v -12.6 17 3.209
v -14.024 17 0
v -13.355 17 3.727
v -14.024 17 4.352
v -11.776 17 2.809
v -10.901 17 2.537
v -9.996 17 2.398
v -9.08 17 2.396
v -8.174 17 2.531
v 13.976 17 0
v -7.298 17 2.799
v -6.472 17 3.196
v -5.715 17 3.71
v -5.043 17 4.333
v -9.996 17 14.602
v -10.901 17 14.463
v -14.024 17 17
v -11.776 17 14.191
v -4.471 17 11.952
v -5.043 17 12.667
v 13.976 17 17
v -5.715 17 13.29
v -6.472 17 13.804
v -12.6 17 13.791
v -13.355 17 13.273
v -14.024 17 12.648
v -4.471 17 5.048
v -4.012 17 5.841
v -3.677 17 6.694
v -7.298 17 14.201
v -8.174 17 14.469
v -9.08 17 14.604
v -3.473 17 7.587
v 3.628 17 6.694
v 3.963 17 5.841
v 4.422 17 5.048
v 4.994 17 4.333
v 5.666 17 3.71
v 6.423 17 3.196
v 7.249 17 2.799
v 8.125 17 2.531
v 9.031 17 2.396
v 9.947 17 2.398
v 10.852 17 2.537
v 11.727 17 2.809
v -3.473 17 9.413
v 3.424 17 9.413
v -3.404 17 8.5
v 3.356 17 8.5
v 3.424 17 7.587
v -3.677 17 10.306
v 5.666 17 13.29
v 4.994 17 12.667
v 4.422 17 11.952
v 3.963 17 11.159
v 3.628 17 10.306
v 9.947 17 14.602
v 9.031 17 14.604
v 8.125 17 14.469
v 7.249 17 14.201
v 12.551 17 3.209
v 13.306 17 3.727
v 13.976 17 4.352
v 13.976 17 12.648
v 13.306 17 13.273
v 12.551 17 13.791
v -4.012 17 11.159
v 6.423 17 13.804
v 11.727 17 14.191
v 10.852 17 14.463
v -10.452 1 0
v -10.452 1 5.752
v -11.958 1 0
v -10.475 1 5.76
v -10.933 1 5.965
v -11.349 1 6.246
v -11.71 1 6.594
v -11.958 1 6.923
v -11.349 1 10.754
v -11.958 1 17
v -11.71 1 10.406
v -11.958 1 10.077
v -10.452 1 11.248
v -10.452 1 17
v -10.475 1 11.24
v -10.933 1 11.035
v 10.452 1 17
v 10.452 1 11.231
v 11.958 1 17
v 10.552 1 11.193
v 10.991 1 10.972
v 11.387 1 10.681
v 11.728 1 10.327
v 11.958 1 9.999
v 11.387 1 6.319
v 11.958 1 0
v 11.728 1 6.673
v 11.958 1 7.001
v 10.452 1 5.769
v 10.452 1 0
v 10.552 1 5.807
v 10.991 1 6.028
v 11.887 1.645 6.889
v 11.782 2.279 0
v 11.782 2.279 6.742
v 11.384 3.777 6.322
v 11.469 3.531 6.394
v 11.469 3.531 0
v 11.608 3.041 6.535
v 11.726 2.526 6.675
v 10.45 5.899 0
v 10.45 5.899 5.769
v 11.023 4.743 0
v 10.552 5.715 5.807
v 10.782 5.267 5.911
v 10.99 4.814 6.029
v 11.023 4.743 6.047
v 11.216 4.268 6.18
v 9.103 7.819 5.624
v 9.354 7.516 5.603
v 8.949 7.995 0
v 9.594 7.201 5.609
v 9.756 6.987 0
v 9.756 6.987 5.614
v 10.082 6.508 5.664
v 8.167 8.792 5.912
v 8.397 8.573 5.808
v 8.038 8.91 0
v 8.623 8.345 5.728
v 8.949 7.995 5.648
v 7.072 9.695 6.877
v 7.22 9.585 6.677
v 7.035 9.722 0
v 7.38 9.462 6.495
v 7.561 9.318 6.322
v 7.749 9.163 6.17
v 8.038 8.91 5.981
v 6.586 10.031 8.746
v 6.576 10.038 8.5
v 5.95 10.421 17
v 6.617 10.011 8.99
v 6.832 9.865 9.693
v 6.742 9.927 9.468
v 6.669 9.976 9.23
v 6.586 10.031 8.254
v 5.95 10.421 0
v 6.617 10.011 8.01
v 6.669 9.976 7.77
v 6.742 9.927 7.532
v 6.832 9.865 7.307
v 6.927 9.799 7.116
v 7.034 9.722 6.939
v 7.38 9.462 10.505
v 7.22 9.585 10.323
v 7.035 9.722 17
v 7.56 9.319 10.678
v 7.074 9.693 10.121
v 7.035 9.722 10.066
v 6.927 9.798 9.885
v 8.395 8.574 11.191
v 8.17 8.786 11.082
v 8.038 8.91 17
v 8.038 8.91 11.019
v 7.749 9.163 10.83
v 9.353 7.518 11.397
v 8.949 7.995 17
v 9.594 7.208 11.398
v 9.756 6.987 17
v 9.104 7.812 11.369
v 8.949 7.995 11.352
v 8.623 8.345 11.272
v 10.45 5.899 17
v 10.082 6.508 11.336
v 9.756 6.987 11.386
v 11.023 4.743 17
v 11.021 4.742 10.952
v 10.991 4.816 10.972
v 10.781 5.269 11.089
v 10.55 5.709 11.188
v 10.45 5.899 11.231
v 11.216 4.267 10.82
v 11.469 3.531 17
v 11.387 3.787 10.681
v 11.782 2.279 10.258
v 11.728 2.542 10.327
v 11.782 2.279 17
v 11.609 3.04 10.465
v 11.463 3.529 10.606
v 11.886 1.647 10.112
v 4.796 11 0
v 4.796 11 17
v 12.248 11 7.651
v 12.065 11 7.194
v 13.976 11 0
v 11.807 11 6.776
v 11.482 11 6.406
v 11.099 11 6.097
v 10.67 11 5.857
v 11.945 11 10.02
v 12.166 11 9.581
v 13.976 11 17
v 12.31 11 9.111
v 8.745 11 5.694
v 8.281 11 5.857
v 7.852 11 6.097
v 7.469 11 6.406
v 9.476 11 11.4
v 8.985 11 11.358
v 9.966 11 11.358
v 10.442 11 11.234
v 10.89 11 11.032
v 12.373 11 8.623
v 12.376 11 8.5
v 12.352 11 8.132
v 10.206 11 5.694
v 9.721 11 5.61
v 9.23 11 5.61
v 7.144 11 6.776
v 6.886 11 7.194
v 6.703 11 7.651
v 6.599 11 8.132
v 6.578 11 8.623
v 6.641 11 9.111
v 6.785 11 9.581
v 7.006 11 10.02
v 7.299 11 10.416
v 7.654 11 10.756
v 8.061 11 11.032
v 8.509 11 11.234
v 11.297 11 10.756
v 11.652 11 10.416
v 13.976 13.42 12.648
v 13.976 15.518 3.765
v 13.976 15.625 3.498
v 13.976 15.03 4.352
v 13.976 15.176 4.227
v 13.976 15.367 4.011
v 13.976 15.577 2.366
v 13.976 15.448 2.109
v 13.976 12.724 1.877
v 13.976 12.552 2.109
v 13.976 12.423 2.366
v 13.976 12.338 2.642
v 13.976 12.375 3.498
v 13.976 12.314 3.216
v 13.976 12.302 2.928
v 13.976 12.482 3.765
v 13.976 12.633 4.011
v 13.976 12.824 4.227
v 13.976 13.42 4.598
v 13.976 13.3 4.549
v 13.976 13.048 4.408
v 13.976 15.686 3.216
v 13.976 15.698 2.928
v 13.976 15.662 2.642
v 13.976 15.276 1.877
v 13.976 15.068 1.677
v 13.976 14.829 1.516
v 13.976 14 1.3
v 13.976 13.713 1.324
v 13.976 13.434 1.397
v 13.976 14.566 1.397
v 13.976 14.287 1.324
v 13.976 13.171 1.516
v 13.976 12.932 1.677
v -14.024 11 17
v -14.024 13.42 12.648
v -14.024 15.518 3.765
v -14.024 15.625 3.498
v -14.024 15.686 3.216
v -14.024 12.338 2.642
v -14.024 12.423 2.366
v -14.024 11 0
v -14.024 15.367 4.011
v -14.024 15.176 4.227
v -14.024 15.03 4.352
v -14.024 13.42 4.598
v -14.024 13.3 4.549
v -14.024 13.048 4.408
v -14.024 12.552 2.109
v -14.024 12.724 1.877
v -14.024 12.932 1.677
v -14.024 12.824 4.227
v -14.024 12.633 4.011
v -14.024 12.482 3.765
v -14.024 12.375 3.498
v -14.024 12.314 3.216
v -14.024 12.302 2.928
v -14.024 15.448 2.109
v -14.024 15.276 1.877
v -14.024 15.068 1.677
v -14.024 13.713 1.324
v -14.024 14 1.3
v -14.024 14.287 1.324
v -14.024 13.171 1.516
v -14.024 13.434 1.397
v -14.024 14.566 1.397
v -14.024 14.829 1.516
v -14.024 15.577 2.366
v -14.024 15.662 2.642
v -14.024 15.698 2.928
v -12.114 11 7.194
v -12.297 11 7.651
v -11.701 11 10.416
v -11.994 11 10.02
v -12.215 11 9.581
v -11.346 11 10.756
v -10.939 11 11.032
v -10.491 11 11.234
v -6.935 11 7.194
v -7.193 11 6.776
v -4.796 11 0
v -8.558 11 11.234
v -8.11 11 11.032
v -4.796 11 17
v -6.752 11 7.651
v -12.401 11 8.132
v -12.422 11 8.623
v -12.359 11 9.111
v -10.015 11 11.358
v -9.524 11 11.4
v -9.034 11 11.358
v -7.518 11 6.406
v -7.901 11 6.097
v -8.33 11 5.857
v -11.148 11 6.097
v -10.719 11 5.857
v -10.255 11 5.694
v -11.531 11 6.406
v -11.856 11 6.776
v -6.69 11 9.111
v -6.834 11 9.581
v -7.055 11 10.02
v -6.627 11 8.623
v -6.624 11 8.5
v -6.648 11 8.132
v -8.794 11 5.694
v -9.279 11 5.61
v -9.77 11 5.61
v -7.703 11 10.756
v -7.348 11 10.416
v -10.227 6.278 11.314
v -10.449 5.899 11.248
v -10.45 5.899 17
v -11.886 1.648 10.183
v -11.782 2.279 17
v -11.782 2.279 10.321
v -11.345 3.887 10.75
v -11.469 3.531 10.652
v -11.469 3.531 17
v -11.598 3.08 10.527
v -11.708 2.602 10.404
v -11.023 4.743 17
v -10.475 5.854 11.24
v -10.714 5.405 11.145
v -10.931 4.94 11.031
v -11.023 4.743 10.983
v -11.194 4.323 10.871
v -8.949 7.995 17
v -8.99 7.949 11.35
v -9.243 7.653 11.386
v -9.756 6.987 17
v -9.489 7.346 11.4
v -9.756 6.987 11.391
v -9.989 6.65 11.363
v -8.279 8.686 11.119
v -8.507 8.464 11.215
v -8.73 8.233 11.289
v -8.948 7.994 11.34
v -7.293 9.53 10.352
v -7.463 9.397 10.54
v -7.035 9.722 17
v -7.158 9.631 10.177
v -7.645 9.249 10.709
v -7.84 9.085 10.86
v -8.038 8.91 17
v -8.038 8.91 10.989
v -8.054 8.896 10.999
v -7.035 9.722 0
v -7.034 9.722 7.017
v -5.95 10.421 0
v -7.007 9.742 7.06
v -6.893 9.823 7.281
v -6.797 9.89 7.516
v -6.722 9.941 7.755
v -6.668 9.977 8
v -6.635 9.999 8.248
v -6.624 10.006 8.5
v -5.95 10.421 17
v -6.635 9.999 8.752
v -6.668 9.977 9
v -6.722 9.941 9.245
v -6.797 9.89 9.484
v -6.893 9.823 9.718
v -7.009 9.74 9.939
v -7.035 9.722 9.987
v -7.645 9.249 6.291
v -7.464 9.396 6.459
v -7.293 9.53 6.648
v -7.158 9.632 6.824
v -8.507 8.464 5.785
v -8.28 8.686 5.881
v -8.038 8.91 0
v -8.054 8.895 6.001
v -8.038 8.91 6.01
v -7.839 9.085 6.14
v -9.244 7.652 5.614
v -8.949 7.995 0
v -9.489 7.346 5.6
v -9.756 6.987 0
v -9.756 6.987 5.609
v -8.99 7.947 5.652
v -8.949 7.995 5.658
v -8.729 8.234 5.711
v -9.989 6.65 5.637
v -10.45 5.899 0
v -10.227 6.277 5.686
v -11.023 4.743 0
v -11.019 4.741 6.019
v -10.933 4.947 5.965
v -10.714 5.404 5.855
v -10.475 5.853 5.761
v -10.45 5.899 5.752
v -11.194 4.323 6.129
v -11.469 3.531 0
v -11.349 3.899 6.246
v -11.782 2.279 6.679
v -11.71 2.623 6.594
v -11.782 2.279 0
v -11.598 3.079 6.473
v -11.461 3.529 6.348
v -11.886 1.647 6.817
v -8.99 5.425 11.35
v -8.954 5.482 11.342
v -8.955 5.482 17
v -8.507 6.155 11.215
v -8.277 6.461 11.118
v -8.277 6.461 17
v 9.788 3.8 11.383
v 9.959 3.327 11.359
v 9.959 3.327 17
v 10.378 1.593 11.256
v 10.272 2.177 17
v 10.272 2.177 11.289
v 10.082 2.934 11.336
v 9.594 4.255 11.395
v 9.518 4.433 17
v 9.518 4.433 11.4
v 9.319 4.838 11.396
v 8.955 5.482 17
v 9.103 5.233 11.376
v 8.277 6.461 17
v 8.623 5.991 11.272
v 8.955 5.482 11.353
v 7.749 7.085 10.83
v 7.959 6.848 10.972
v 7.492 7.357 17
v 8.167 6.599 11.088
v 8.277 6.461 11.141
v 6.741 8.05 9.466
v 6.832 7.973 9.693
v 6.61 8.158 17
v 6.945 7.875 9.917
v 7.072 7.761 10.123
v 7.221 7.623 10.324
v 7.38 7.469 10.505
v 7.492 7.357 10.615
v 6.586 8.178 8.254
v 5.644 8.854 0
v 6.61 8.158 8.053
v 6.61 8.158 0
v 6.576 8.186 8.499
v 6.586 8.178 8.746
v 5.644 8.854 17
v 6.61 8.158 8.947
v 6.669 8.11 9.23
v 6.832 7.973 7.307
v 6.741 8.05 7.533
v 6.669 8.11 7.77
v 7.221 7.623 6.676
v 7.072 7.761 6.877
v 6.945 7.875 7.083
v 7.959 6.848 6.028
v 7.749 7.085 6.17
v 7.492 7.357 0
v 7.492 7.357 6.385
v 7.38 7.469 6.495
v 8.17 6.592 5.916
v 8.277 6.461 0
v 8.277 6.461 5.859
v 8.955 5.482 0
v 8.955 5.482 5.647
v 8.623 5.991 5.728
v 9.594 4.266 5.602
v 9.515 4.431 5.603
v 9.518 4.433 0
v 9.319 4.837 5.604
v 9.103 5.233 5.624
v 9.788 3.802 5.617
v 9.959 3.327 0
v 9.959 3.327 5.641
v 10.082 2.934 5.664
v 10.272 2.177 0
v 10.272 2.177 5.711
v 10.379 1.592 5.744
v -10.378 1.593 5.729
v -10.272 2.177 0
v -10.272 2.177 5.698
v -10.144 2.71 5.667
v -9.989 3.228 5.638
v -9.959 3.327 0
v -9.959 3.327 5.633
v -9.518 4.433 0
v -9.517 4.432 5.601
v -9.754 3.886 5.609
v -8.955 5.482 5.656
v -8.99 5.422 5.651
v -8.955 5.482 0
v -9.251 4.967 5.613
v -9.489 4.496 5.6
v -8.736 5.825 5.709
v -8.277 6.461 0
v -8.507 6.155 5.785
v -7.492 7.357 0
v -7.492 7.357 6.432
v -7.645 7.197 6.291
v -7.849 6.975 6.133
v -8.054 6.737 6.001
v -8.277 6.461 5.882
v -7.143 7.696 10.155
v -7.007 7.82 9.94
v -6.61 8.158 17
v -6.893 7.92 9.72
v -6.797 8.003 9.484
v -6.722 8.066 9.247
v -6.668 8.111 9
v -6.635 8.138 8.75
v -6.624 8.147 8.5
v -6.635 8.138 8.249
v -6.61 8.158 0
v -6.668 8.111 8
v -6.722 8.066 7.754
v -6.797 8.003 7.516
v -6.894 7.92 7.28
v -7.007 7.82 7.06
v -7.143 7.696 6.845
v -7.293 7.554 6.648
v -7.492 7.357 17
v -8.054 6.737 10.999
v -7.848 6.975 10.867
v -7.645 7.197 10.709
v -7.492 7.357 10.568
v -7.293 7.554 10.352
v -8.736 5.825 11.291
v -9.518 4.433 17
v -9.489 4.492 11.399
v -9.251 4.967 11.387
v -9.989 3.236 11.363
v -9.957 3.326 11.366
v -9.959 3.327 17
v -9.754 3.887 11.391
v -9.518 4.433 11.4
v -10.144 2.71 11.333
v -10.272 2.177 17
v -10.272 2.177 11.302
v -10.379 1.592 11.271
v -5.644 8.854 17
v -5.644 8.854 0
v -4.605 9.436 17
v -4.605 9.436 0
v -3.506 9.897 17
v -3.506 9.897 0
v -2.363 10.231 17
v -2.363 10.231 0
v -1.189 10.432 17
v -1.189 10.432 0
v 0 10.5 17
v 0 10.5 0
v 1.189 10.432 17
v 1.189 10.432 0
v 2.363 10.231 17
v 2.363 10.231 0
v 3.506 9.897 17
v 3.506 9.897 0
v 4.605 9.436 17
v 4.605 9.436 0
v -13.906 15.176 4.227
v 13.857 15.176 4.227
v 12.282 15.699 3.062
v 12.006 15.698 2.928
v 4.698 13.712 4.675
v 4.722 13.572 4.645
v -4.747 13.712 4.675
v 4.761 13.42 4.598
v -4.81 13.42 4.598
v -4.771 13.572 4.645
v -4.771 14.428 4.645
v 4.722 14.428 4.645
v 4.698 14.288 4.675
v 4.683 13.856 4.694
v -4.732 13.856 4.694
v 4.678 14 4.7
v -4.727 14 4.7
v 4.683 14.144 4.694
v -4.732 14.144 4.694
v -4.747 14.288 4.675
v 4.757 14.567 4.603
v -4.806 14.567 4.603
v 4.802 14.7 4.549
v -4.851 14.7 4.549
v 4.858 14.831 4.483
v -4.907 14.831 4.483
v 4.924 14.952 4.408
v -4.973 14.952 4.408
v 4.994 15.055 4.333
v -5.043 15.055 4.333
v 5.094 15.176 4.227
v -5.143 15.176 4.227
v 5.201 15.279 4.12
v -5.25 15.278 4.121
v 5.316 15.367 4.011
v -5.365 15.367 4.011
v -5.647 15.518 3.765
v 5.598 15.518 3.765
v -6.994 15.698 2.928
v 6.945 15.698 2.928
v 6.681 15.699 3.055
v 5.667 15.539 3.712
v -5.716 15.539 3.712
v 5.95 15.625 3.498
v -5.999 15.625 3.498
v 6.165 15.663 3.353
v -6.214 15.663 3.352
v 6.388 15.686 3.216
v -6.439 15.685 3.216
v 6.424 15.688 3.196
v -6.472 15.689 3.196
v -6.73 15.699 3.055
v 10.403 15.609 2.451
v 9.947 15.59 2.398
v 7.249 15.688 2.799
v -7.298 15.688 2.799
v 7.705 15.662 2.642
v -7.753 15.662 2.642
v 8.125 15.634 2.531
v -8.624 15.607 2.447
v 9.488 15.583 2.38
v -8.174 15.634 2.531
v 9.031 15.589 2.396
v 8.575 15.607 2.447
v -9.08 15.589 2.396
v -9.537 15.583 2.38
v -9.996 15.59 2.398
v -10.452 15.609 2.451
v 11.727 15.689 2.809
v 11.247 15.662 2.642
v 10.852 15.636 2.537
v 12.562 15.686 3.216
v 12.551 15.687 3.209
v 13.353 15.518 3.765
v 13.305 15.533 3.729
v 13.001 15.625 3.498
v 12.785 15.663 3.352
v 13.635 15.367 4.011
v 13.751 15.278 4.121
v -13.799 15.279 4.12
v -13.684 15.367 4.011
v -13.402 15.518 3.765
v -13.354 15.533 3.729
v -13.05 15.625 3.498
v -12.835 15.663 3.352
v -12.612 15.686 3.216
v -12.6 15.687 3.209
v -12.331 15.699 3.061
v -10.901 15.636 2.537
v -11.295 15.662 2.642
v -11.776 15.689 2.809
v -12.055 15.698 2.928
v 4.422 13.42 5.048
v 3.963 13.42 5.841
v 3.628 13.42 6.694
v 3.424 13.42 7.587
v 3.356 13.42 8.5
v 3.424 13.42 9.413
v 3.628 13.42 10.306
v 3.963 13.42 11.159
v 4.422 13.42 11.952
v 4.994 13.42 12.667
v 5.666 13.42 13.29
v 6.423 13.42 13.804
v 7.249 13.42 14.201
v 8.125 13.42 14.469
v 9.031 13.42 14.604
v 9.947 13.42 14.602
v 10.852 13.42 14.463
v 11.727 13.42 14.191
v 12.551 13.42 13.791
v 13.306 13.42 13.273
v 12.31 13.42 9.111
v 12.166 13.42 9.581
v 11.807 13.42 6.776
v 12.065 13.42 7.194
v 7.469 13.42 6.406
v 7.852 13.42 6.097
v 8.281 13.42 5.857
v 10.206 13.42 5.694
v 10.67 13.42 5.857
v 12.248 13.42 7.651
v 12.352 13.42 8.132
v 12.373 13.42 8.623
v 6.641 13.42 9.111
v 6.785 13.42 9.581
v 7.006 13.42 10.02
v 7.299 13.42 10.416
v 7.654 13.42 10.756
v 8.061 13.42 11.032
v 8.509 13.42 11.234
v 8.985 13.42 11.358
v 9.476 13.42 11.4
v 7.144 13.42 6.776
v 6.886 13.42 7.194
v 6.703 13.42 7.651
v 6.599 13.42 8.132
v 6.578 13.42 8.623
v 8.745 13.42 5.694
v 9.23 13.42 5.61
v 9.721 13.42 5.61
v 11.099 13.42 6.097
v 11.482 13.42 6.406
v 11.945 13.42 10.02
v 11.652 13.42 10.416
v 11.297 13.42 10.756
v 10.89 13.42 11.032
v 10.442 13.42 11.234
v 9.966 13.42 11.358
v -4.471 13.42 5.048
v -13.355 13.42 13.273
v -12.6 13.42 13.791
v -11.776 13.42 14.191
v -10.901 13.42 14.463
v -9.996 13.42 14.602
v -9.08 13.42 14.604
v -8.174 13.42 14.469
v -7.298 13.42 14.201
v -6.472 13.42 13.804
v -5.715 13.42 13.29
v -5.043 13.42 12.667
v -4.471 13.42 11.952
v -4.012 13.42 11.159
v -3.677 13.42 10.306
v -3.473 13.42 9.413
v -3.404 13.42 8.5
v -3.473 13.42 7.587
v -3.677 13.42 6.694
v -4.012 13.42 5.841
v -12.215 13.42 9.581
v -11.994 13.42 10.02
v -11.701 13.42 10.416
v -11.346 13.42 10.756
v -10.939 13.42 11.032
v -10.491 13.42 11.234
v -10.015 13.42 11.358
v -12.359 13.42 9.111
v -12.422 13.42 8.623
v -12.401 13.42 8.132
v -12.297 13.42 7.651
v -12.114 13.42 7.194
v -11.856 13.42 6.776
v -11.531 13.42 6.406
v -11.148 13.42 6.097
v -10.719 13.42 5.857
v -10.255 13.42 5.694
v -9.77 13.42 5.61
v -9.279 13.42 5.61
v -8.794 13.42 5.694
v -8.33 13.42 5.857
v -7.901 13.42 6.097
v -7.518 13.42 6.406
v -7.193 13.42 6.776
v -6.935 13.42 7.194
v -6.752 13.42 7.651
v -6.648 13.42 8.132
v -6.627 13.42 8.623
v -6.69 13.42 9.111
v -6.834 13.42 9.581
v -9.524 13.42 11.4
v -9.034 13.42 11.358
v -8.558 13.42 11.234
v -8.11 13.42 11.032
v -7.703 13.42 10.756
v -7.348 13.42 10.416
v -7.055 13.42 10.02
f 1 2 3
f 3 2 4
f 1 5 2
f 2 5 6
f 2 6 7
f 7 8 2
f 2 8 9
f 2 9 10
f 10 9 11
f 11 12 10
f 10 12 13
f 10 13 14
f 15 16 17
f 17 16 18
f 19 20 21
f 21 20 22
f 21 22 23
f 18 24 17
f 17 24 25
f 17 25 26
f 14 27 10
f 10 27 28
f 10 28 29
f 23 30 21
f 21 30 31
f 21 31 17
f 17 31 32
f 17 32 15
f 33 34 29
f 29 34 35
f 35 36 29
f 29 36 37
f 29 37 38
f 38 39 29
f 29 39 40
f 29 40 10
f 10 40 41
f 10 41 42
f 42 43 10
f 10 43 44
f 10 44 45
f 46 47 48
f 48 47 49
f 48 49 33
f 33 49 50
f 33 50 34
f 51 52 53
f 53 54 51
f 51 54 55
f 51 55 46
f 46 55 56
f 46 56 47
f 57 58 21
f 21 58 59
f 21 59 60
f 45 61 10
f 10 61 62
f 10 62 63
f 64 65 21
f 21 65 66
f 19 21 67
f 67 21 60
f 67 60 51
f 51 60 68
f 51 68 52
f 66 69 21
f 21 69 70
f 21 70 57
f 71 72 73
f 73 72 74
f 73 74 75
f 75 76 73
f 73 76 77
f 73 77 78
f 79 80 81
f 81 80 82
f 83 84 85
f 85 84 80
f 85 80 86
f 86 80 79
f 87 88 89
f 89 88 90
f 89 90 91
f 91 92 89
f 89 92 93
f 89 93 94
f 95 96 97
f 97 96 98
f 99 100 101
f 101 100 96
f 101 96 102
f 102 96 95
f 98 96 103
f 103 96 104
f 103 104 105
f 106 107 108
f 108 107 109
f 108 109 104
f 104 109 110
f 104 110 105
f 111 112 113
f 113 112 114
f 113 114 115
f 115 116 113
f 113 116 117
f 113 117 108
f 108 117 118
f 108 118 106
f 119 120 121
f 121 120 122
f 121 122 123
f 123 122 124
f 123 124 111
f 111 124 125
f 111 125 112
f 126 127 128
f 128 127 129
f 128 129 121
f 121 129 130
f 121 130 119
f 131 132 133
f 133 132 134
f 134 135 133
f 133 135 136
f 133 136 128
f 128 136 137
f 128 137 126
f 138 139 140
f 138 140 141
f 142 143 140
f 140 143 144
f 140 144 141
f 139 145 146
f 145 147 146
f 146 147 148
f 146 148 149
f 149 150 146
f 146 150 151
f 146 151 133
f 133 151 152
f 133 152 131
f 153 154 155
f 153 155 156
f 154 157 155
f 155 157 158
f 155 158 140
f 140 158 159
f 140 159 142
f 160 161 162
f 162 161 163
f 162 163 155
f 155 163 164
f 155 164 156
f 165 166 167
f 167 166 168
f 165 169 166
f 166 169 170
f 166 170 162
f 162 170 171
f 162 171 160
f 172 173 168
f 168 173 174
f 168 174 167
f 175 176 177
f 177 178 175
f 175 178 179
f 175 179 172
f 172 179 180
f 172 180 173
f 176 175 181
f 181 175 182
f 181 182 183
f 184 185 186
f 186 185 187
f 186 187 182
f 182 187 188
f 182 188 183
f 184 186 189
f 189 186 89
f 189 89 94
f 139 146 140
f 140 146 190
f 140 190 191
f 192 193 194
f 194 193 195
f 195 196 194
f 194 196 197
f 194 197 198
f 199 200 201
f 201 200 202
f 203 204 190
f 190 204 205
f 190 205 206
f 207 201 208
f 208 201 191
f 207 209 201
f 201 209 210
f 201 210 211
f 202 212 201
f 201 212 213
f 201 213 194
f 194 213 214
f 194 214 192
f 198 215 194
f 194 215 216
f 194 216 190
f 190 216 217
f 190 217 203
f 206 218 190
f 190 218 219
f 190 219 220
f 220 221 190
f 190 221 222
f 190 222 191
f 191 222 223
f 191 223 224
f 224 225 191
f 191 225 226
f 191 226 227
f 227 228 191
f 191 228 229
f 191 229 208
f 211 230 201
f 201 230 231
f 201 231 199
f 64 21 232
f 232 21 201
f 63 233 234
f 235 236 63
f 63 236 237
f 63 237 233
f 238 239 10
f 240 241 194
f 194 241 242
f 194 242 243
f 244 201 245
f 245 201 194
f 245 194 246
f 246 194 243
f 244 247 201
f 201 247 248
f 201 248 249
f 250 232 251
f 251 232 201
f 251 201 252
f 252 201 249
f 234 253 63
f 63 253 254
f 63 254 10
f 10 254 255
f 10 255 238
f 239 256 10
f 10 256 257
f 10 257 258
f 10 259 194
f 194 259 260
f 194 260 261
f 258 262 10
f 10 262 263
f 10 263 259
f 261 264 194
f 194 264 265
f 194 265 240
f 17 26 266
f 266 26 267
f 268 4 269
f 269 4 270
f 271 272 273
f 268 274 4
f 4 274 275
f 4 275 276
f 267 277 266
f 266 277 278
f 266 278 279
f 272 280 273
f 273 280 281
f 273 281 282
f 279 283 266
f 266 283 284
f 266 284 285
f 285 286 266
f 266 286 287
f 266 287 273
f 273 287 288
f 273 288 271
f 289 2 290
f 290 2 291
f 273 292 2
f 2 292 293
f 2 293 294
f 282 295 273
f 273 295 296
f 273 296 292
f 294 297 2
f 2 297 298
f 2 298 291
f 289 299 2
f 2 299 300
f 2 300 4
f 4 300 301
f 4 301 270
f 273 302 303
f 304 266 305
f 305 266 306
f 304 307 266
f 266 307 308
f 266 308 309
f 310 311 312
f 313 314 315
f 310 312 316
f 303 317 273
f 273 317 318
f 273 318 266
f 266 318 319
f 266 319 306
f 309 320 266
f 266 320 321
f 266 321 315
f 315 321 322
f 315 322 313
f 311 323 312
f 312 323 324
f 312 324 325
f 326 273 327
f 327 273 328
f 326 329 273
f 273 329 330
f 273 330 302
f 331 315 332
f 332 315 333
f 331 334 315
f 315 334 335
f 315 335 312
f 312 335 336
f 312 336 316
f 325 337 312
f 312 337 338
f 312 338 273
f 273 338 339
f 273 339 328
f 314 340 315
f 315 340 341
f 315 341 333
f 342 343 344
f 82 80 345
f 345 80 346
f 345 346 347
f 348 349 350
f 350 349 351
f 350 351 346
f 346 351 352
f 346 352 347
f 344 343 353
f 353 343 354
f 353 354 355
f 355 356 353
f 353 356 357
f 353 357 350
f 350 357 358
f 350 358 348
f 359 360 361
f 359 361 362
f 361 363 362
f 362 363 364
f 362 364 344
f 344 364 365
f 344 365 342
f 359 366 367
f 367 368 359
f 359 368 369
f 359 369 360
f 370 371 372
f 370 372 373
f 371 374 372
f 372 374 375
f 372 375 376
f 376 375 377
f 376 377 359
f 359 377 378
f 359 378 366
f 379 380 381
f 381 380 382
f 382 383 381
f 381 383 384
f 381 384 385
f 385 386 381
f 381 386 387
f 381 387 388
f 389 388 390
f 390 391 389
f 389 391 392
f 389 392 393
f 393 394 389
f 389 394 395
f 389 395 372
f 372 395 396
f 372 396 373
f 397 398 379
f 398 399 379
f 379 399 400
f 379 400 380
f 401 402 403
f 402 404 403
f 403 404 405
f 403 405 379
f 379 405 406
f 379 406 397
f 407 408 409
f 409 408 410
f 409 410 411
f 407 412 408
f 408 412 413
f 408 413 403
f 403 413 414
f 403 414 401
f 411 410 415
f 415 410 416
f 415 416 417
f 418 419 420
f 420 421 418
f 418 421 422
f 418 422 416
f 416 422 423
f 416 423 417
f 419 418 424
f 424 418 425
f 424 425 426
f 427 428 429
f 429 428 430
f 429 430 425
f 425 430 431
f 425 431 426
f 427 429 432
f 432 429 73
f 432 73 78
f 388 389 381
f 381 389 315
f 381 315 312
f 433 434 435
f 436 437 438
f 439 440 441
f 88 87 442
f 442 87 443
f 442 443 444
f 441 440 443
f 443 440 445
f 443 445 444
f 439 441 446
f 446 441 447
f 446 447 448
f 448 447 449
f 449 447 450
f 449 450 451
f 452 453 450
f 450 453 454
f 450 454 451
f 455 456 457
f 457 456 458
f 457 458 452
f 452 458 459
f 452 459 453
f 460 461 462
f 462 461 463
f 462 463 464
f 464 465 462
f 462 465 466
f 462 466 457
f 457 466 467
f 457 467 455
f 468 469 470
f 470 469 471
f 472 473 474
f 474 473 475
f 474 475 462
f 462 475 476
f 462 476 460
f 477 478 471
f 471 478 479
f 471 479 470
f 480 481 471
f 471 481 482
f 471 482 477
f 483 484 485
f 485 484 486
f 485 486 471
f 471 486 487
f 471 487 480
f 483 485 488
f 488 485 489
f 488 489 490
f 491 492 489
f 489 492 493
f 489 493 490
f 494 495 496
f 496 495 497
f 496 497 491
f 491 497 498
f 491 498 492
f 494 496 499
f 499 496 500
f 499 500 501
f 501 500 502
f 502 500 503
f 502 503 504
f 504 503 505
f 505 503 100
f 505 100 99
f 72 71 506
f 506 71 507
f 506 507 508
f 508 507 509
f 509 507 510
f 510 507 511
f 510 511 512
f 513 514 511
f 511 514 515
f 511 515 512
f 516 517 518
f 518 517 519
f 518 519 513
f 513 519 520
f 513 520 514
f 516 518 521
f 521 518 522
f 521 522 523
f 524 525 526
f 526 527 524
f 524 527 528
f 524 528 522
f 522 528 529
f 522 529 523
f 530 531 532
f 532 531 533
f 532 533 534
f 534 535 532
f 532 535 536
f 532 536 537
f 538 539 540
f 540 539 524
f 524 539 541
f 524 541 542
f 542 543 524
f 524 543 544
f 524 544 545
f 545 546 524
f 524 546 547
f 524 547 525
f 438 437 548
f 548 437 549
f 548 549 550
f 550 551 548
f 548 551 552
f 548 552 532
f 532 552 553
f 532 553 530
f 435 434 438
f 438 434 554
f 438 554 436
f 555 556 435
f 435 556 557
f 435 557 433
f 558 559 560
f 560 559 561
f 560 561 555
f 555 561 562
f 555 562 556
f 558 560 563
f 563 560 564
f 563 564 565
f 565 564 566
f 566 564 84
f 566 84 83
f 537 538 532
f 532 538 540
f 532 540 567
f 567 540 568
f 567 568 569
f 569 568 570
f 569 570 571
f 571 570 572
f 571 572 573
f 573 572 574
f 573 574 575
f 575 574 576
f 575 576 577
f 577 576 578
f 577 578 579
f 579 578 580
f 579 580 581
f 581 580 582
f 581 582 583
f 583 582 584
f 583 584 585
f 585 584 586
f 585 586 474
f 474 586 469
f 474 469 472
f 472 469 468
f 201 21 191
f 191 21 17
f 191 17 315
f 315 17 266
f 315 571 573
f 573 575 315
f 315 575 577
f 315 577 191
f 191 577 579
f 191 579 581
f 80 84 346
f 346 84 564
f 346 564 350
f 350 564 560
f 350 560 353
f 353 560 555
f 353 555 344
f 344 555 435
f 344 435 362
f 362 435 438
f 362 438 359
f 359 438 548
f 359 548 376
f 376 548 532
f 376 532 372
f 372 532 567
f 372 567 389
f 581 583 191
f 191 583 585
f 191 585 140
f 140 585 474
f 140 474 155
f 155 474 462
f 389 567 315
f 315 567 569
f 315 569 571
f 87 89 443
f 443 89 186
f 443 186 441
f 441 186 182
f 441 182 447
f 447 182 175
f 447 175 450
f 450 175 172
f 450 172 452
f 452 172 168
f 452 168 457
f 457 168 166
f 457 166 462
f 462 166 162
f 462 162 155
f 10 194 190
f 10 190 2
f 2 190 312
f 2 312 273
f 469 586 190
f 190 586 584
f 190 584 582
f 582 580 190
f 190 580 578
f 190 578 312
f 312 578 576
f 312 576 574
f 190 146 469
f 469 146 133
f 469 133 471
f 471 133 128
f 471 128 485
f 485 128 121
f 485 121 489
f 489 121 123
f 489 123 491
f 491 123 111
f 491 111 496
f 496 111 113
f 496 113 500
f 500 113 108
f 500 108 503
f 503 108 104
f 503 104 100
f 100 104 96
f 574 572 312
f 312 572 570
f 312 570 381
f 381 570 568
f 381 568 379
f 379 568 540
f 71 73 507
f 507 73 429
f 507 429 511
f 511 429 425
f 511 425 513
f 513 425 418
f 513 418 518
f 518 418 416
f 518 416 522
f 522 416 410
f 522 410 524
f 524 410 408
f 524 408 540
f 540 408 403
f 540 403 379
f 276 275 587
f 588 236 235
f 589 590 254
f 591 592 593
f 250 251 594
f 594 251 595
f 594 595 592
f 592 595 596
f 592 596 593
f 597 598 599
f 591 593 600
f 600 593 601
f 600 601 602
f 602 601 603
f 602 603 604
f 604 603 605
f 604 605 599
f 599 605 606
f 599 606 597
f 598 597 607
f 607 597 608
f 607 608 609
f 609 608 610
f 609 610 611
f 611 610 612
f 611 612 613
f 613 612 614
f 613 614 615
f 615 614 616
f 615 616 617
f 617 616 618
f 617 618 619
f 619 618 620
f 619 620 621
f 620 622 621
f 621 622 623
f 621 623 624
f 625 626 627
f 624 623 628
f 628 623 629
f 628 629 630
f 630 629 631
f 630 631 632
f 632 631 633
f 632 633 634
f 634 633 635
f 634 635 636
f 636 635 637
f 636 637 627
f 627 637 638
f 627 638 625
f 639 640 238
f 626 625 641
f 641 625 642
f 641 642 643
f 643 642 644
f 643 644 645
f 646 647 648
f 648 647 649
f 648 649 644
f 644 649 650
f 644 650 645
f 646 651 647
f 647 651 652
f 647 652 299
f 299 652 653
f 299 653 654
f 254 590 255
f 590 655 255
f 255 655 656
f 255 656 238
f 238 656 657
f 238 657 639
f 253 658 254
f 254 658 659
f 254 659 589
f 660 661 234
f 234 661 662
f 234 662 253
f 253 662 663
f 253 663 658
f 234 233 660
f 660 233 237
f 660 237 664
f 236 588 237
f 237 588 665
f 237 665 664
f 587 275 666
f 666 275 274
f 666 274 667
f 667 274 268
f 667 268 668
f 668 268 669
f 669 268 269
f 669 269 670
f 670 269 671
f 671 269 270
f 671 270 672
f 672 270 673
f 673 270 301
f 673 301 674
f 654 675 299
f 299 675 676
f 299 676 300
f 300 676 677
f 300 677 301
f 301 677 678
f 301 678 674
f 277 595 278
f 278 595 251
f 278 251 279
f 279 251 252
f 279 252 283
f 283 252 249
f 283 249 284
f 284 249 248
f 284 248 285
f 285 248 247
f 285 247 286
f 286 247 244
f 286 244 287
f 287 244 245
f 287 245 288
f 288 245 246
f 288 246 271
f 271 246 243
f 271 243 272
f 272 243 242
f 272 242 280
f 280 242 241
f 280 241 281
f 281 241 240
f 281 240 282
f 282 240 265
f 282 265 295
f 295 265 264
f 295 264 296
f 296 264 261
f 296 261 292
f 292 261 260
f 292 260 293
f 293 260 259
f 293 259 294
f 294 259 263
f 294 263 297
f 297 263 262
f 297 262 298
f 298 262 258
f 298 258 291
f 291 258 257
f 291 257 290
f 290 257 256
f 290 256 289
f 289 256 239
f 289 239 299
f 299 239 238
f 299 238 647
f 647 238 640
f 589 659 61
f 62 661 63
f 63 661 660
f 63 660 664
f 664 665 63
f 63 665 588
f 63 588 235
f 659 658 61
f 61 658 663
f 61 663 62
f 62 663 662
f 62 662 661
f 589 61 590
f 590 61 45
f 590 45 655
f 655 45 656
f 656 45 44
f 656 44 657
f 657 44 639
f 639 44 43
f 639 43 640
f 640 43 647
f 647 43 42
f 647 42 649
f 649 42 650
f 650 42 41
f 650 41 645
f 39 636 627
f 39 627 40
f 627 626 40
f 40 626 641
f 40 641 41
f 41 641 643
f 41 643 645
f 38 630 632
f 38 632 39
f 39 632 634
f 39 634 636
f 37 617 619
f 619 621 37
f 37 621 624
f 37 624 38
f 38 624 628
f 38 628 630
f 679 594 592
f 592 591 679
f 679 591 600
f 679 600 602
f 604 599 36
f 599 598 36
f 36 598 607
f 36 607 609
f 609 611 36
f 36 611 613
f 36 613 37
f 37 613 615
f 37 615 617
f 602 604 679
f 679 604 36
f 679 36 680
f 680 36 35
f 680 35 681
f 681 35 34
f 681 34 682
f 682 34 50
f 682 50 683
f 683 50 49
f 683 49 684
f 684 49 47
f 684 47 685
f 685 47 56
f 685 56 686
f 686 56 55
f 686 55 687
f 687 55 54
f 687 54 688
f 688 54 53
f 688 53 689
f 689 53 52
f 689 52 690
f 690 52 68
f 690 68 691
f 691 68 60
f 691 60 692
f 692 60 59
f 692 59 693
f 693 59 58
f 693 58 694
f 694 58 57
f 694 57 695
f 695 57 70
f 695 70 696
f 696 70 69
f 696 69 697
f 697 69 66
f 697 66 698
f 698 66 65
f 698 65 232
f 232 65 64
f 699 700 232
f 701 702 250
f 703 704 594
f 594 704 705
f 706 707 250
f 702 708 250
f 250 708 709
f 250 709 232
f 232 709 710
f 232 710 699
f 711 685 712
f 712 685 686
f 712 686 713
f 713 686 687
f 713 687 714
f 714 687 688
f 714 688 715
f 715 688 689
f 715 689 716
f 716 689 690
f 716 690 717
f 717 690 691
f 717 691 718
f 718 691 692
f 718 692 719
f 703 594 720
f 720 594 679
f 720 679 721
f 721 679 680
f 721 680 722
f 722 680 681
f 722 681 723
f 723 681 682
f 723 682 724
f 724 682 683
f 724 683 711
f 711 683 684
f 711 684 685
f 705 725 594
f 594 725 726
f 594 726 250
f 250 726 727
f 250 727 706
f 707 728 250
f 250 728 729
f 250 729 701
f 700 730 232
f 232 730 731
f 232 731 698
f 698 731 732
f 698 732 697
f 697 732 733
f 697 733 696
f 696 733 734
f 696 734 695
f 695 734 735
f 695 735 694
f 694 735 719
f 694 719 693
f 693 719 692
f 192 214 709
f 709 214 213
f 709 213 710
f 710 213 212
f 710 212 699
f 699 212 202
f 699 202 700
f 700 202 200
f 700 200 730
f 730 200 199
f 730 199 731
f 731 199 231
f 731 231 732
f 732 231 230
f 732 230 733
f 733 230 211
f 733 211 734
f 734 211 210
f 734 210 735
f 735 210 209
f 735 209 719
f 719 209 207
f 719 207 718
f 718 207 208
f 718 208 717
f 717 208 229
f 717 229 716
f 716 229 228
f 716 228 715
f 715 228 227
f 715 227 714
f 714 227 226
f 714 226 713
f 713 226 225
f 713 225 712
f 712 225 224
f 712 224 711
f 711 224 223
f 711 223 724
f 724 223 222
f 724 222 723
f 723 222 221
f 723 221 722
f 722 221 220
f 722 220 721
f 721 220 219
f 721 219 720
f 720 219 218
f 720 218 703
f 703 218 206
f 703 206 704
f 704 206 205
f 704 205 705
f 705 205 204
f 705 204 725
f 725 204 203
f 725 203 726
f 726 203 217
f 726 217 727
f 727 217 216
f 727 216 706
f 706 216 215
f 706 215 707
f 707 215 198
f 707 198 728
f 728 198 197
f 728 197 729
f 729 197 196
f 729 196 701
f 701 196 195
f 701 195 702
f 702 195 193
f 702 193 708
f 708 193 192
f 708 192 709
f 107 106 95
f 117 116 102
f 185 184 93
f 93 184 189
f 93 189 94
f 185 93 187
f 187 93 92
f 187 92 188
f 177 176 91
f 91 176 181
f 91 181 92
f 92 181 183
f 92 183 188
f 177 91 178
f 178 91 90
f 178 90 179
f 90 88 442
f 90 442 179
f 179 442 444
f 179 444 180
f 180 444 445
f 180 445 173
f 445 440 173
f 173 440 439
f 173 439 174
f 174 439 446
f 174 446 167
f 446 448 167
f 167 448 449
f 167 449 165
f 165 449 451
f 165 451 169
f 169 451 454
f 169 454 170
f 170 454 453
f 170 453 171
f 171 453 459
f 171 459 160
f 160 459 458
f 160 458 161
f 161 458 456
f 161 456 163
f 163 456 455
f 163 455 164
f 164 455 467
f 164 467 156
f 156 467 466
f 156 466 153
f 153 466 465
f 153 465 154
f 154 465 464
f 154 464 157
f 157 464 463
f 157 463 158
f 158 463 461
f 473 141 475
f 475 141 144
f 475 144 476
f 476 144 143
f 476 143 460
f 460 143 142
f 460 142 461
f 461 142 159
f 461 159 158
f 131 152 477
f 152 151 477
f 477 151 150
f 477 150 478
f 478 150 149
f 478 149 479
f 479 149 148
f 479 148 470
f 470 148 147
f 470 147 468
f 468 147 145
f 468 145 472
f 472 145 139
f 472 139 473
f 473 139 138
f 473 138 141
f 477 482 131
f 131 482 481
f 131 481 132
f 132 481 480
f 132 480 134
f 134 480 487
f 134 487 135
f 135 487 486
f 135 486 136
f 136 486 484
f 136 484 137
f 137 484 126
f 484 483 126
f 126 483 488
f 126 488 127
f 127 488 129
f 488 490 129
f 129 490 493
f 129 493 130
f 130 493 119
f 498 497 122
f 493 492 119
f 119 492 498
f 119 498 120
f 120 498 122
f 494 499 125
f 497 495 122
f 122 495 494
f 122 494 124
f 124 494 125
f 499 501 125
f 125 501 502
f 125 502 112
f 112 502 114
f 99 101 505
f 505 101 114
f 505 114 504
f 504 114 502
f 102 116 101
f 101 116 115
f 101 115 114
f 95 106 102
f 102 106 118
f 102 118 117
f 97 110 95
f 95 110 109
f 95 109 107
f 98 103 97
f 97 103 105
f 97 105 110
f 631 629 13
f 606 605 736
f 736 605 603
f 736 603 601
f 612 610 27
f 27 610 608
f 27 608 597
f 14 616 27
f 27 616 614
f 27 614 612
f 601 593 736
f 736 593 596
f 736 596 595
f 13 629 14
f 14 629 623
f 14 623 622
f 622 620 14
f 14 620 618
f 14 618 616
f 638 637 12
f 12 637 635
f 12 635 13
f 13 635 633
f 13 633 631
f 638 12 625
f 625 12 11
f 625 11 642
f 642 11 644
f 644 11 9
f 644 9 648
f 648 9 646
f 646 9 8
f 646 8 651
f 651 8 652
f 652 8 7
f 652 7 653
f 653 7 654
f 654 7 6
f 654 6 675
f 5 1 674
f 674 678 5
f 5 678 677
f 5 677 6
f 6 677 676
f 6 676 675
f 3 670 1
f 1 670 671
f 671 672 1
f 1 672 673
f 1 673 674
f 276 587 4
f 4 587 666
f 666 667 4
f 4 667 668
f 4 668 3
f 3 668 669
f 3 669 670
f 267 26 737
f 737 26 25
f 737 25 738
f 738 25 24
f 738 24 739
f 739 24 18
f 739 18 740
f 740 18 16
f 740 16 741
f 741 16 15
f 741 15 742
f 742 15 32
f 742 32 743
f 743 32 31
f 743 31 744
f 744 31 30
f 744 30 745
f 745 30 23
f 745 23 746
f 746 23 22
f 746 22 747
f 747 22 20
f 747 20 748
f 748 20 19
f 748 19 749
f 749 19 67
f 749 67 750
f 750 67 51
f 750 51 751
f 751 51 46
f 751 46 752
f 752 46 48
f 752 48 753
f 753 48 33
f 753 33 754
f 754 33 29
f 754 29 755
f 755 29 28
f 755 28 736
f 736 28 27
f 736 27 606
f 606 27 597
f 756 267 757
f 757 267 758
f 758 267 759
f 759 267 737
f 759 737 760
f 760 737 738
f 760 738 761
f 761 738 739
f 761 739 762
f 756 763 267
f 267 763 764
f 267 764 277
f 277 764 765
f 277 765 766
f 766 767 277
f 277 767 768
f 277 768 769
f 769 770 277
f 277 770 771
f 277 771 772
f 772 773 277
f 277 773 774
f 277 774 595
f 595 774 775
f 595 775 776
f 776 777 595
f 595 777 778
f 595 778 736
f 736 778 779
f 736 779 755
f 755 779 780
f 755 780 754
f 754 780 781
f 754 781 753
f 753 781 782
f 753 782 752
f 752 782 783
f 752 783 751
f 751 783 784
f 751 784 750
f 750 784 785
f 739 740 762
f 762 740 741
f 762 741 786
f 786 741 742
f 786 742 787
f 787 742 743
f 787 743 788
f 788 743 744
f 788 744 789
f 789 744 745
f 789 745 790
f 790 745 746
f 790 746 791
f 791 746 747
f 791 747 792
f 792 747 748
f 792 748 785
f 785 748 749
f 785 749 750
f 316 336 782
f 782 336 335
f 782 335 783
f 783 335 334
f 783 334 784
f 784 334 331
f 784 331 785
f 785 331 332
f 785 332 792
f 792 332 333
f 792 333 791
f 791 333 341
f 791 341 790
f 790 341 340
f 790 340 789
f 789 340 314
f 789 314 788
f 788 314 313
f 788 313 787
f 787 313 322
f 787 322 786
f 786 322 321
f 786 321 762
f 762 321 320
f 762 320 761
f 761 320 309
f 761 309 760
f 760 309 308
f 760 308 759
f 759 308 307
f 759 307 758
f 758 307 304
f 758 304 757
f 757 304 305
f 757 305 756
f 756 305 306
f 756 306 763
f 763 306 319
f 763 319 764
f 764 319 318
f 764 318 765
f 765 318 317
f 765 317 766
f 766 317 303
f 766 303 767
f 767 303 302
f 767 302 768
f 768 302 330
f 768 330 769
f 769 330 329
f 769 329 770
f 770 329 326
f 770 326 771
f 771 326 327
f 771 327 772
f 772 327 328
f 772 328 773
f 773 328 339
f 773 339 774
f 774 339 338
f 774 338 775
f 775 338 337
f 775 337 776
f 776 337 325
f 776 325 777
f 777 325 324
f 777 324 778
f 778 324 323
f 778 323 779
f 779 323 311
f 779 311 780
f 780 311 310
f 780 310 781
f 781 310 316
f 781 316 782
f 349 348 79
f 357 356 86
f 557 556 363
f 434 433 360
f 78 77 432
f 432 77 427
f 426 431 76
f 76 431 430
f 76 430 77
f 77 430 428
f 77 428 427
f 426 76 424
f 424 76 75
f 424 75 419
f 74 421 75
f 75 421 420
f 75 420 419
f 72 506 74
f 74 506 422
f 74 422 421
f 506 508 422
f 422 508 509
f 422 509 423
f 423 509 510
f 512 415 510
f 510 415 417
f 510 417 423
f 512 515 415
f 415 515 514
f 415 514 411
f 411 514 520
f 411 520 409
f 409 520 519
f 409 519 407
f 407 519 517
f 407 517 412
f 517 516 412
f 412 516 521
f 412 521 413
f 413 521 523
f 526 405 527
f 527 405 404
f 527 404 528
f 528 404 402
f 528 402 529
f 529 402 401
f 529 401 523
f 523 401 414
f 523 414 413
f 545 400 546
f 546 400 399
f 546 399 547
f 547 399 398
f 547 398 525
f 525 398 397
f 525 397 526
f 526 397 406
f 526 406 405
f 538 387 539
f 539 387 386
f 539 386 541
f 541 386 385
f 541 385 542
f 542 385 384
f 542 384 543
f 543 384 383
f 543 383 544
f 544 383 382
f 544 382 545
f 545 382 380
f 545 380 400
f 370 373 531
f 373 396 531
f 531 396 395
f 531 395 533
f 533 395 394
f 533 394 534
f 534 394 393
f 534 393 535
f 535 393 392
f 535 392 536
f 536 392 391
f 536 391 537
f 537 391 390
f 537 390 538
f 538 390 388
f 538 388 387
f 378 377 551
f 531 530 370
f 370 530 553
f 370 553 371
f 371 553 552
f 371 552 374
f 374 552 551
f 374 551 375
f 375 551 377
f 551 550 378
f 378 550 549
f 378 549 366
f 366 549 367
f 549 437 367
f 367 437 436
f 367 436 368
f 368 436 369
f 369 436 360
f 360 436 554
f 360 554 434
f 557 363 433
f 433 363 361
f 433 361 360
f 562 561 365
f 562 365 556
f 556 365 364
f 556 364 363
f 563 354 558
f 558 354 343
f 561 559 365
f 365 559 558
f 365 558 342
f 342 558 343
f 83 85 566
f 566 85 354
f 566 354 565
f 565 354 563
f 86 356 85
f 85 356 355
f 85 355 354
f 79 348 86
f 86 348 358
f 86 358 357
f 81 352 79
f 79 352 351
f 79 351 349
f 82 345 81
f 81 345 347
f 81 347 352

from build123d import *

# Parameters (mm, degrees)
SALIENTE_EXTRUIR1_DEPTH                              = 17
TALADRO_DE_MARGEN_PARA_M31_D                         = 3.4
REFRENTADO_PARA_PERNO_CON_CABEZA_HEXAGON_D           = 5.8
REFRENTADO_PARA_PERNO_CON_CABEZA_HEXAGON_CBORE_D     = 12.24
REFRENTADO_PARA_PERNO_CON_CABEZA_HEXAGON_CBORE_DEPTH = 3.58


with BuildPart() as part:
    # Croquis1 → Saliente-Extruir1 (new body)
    with BuildSketch(Plane.XY):
        with BuildLine():
            Line((13.975508884, 11), (13.975508884, 17))
            Line((13.975508884, 17), (-14.024491116, 17))
            Line((-14.024491116, 17), (-14.024491116, 11))
            Line((-14.024491116, 11), (-4.795831523, 11))
            ThreePointArc((-4.795831523, 11), (-9.755762498, 6.987495838), (-11.958260743, 1))
            Line((-11.958260743, 1), (-10.45227248, 1))
            ThreePointArc((-10.45227248, 1), (0, 10.5), (10.45227248, 1))
            Line((10.45227248, 1), (11.958260743, 1))
            ThreePointArc((11.958260743, 1), (9.755762498, 6.987495838), (4.795831523, 11))
            Line((4.795831523, 11), (13.975508884, 11))
        make_face()
    extrude(amount=SALIENTE_EXTRUIR1_DEPTH)

    # Taladro de margen para M31 (through all)
    with Locations(Plane(origin=(13.975508884, 0, 0), x_dir=(0, 0, -1), z_dir=(1, 0, 0))):
        with Locations((-3, 14)):
            Hole(TALADRO_DE_MARGEN_PARA_M31_D / 2)

    # Refrentado para perno con cabeza hexagonal de M51 (through all)
    with Locations(Plane(origin=(0, 17, 0), x_dir=(1, 0, 0), z_dir=(0, 1, 0))):
        with Locations((9.475508884, -8.5), (-9.524491116, -8.5)):
            CounterBoreHole(REFRENTADO_PARA_PERNO_CON_CABEZA_HEXAGON_D / 2, REFRENTADO_PARA_PERNO_CON_CABEZA_HEXAGON_CBORE_D / 2, REFRENTADO_PARA_PERNO_CON_CABEZA_HEXAGON_CBORE_DEPTH)


solid = part.part
